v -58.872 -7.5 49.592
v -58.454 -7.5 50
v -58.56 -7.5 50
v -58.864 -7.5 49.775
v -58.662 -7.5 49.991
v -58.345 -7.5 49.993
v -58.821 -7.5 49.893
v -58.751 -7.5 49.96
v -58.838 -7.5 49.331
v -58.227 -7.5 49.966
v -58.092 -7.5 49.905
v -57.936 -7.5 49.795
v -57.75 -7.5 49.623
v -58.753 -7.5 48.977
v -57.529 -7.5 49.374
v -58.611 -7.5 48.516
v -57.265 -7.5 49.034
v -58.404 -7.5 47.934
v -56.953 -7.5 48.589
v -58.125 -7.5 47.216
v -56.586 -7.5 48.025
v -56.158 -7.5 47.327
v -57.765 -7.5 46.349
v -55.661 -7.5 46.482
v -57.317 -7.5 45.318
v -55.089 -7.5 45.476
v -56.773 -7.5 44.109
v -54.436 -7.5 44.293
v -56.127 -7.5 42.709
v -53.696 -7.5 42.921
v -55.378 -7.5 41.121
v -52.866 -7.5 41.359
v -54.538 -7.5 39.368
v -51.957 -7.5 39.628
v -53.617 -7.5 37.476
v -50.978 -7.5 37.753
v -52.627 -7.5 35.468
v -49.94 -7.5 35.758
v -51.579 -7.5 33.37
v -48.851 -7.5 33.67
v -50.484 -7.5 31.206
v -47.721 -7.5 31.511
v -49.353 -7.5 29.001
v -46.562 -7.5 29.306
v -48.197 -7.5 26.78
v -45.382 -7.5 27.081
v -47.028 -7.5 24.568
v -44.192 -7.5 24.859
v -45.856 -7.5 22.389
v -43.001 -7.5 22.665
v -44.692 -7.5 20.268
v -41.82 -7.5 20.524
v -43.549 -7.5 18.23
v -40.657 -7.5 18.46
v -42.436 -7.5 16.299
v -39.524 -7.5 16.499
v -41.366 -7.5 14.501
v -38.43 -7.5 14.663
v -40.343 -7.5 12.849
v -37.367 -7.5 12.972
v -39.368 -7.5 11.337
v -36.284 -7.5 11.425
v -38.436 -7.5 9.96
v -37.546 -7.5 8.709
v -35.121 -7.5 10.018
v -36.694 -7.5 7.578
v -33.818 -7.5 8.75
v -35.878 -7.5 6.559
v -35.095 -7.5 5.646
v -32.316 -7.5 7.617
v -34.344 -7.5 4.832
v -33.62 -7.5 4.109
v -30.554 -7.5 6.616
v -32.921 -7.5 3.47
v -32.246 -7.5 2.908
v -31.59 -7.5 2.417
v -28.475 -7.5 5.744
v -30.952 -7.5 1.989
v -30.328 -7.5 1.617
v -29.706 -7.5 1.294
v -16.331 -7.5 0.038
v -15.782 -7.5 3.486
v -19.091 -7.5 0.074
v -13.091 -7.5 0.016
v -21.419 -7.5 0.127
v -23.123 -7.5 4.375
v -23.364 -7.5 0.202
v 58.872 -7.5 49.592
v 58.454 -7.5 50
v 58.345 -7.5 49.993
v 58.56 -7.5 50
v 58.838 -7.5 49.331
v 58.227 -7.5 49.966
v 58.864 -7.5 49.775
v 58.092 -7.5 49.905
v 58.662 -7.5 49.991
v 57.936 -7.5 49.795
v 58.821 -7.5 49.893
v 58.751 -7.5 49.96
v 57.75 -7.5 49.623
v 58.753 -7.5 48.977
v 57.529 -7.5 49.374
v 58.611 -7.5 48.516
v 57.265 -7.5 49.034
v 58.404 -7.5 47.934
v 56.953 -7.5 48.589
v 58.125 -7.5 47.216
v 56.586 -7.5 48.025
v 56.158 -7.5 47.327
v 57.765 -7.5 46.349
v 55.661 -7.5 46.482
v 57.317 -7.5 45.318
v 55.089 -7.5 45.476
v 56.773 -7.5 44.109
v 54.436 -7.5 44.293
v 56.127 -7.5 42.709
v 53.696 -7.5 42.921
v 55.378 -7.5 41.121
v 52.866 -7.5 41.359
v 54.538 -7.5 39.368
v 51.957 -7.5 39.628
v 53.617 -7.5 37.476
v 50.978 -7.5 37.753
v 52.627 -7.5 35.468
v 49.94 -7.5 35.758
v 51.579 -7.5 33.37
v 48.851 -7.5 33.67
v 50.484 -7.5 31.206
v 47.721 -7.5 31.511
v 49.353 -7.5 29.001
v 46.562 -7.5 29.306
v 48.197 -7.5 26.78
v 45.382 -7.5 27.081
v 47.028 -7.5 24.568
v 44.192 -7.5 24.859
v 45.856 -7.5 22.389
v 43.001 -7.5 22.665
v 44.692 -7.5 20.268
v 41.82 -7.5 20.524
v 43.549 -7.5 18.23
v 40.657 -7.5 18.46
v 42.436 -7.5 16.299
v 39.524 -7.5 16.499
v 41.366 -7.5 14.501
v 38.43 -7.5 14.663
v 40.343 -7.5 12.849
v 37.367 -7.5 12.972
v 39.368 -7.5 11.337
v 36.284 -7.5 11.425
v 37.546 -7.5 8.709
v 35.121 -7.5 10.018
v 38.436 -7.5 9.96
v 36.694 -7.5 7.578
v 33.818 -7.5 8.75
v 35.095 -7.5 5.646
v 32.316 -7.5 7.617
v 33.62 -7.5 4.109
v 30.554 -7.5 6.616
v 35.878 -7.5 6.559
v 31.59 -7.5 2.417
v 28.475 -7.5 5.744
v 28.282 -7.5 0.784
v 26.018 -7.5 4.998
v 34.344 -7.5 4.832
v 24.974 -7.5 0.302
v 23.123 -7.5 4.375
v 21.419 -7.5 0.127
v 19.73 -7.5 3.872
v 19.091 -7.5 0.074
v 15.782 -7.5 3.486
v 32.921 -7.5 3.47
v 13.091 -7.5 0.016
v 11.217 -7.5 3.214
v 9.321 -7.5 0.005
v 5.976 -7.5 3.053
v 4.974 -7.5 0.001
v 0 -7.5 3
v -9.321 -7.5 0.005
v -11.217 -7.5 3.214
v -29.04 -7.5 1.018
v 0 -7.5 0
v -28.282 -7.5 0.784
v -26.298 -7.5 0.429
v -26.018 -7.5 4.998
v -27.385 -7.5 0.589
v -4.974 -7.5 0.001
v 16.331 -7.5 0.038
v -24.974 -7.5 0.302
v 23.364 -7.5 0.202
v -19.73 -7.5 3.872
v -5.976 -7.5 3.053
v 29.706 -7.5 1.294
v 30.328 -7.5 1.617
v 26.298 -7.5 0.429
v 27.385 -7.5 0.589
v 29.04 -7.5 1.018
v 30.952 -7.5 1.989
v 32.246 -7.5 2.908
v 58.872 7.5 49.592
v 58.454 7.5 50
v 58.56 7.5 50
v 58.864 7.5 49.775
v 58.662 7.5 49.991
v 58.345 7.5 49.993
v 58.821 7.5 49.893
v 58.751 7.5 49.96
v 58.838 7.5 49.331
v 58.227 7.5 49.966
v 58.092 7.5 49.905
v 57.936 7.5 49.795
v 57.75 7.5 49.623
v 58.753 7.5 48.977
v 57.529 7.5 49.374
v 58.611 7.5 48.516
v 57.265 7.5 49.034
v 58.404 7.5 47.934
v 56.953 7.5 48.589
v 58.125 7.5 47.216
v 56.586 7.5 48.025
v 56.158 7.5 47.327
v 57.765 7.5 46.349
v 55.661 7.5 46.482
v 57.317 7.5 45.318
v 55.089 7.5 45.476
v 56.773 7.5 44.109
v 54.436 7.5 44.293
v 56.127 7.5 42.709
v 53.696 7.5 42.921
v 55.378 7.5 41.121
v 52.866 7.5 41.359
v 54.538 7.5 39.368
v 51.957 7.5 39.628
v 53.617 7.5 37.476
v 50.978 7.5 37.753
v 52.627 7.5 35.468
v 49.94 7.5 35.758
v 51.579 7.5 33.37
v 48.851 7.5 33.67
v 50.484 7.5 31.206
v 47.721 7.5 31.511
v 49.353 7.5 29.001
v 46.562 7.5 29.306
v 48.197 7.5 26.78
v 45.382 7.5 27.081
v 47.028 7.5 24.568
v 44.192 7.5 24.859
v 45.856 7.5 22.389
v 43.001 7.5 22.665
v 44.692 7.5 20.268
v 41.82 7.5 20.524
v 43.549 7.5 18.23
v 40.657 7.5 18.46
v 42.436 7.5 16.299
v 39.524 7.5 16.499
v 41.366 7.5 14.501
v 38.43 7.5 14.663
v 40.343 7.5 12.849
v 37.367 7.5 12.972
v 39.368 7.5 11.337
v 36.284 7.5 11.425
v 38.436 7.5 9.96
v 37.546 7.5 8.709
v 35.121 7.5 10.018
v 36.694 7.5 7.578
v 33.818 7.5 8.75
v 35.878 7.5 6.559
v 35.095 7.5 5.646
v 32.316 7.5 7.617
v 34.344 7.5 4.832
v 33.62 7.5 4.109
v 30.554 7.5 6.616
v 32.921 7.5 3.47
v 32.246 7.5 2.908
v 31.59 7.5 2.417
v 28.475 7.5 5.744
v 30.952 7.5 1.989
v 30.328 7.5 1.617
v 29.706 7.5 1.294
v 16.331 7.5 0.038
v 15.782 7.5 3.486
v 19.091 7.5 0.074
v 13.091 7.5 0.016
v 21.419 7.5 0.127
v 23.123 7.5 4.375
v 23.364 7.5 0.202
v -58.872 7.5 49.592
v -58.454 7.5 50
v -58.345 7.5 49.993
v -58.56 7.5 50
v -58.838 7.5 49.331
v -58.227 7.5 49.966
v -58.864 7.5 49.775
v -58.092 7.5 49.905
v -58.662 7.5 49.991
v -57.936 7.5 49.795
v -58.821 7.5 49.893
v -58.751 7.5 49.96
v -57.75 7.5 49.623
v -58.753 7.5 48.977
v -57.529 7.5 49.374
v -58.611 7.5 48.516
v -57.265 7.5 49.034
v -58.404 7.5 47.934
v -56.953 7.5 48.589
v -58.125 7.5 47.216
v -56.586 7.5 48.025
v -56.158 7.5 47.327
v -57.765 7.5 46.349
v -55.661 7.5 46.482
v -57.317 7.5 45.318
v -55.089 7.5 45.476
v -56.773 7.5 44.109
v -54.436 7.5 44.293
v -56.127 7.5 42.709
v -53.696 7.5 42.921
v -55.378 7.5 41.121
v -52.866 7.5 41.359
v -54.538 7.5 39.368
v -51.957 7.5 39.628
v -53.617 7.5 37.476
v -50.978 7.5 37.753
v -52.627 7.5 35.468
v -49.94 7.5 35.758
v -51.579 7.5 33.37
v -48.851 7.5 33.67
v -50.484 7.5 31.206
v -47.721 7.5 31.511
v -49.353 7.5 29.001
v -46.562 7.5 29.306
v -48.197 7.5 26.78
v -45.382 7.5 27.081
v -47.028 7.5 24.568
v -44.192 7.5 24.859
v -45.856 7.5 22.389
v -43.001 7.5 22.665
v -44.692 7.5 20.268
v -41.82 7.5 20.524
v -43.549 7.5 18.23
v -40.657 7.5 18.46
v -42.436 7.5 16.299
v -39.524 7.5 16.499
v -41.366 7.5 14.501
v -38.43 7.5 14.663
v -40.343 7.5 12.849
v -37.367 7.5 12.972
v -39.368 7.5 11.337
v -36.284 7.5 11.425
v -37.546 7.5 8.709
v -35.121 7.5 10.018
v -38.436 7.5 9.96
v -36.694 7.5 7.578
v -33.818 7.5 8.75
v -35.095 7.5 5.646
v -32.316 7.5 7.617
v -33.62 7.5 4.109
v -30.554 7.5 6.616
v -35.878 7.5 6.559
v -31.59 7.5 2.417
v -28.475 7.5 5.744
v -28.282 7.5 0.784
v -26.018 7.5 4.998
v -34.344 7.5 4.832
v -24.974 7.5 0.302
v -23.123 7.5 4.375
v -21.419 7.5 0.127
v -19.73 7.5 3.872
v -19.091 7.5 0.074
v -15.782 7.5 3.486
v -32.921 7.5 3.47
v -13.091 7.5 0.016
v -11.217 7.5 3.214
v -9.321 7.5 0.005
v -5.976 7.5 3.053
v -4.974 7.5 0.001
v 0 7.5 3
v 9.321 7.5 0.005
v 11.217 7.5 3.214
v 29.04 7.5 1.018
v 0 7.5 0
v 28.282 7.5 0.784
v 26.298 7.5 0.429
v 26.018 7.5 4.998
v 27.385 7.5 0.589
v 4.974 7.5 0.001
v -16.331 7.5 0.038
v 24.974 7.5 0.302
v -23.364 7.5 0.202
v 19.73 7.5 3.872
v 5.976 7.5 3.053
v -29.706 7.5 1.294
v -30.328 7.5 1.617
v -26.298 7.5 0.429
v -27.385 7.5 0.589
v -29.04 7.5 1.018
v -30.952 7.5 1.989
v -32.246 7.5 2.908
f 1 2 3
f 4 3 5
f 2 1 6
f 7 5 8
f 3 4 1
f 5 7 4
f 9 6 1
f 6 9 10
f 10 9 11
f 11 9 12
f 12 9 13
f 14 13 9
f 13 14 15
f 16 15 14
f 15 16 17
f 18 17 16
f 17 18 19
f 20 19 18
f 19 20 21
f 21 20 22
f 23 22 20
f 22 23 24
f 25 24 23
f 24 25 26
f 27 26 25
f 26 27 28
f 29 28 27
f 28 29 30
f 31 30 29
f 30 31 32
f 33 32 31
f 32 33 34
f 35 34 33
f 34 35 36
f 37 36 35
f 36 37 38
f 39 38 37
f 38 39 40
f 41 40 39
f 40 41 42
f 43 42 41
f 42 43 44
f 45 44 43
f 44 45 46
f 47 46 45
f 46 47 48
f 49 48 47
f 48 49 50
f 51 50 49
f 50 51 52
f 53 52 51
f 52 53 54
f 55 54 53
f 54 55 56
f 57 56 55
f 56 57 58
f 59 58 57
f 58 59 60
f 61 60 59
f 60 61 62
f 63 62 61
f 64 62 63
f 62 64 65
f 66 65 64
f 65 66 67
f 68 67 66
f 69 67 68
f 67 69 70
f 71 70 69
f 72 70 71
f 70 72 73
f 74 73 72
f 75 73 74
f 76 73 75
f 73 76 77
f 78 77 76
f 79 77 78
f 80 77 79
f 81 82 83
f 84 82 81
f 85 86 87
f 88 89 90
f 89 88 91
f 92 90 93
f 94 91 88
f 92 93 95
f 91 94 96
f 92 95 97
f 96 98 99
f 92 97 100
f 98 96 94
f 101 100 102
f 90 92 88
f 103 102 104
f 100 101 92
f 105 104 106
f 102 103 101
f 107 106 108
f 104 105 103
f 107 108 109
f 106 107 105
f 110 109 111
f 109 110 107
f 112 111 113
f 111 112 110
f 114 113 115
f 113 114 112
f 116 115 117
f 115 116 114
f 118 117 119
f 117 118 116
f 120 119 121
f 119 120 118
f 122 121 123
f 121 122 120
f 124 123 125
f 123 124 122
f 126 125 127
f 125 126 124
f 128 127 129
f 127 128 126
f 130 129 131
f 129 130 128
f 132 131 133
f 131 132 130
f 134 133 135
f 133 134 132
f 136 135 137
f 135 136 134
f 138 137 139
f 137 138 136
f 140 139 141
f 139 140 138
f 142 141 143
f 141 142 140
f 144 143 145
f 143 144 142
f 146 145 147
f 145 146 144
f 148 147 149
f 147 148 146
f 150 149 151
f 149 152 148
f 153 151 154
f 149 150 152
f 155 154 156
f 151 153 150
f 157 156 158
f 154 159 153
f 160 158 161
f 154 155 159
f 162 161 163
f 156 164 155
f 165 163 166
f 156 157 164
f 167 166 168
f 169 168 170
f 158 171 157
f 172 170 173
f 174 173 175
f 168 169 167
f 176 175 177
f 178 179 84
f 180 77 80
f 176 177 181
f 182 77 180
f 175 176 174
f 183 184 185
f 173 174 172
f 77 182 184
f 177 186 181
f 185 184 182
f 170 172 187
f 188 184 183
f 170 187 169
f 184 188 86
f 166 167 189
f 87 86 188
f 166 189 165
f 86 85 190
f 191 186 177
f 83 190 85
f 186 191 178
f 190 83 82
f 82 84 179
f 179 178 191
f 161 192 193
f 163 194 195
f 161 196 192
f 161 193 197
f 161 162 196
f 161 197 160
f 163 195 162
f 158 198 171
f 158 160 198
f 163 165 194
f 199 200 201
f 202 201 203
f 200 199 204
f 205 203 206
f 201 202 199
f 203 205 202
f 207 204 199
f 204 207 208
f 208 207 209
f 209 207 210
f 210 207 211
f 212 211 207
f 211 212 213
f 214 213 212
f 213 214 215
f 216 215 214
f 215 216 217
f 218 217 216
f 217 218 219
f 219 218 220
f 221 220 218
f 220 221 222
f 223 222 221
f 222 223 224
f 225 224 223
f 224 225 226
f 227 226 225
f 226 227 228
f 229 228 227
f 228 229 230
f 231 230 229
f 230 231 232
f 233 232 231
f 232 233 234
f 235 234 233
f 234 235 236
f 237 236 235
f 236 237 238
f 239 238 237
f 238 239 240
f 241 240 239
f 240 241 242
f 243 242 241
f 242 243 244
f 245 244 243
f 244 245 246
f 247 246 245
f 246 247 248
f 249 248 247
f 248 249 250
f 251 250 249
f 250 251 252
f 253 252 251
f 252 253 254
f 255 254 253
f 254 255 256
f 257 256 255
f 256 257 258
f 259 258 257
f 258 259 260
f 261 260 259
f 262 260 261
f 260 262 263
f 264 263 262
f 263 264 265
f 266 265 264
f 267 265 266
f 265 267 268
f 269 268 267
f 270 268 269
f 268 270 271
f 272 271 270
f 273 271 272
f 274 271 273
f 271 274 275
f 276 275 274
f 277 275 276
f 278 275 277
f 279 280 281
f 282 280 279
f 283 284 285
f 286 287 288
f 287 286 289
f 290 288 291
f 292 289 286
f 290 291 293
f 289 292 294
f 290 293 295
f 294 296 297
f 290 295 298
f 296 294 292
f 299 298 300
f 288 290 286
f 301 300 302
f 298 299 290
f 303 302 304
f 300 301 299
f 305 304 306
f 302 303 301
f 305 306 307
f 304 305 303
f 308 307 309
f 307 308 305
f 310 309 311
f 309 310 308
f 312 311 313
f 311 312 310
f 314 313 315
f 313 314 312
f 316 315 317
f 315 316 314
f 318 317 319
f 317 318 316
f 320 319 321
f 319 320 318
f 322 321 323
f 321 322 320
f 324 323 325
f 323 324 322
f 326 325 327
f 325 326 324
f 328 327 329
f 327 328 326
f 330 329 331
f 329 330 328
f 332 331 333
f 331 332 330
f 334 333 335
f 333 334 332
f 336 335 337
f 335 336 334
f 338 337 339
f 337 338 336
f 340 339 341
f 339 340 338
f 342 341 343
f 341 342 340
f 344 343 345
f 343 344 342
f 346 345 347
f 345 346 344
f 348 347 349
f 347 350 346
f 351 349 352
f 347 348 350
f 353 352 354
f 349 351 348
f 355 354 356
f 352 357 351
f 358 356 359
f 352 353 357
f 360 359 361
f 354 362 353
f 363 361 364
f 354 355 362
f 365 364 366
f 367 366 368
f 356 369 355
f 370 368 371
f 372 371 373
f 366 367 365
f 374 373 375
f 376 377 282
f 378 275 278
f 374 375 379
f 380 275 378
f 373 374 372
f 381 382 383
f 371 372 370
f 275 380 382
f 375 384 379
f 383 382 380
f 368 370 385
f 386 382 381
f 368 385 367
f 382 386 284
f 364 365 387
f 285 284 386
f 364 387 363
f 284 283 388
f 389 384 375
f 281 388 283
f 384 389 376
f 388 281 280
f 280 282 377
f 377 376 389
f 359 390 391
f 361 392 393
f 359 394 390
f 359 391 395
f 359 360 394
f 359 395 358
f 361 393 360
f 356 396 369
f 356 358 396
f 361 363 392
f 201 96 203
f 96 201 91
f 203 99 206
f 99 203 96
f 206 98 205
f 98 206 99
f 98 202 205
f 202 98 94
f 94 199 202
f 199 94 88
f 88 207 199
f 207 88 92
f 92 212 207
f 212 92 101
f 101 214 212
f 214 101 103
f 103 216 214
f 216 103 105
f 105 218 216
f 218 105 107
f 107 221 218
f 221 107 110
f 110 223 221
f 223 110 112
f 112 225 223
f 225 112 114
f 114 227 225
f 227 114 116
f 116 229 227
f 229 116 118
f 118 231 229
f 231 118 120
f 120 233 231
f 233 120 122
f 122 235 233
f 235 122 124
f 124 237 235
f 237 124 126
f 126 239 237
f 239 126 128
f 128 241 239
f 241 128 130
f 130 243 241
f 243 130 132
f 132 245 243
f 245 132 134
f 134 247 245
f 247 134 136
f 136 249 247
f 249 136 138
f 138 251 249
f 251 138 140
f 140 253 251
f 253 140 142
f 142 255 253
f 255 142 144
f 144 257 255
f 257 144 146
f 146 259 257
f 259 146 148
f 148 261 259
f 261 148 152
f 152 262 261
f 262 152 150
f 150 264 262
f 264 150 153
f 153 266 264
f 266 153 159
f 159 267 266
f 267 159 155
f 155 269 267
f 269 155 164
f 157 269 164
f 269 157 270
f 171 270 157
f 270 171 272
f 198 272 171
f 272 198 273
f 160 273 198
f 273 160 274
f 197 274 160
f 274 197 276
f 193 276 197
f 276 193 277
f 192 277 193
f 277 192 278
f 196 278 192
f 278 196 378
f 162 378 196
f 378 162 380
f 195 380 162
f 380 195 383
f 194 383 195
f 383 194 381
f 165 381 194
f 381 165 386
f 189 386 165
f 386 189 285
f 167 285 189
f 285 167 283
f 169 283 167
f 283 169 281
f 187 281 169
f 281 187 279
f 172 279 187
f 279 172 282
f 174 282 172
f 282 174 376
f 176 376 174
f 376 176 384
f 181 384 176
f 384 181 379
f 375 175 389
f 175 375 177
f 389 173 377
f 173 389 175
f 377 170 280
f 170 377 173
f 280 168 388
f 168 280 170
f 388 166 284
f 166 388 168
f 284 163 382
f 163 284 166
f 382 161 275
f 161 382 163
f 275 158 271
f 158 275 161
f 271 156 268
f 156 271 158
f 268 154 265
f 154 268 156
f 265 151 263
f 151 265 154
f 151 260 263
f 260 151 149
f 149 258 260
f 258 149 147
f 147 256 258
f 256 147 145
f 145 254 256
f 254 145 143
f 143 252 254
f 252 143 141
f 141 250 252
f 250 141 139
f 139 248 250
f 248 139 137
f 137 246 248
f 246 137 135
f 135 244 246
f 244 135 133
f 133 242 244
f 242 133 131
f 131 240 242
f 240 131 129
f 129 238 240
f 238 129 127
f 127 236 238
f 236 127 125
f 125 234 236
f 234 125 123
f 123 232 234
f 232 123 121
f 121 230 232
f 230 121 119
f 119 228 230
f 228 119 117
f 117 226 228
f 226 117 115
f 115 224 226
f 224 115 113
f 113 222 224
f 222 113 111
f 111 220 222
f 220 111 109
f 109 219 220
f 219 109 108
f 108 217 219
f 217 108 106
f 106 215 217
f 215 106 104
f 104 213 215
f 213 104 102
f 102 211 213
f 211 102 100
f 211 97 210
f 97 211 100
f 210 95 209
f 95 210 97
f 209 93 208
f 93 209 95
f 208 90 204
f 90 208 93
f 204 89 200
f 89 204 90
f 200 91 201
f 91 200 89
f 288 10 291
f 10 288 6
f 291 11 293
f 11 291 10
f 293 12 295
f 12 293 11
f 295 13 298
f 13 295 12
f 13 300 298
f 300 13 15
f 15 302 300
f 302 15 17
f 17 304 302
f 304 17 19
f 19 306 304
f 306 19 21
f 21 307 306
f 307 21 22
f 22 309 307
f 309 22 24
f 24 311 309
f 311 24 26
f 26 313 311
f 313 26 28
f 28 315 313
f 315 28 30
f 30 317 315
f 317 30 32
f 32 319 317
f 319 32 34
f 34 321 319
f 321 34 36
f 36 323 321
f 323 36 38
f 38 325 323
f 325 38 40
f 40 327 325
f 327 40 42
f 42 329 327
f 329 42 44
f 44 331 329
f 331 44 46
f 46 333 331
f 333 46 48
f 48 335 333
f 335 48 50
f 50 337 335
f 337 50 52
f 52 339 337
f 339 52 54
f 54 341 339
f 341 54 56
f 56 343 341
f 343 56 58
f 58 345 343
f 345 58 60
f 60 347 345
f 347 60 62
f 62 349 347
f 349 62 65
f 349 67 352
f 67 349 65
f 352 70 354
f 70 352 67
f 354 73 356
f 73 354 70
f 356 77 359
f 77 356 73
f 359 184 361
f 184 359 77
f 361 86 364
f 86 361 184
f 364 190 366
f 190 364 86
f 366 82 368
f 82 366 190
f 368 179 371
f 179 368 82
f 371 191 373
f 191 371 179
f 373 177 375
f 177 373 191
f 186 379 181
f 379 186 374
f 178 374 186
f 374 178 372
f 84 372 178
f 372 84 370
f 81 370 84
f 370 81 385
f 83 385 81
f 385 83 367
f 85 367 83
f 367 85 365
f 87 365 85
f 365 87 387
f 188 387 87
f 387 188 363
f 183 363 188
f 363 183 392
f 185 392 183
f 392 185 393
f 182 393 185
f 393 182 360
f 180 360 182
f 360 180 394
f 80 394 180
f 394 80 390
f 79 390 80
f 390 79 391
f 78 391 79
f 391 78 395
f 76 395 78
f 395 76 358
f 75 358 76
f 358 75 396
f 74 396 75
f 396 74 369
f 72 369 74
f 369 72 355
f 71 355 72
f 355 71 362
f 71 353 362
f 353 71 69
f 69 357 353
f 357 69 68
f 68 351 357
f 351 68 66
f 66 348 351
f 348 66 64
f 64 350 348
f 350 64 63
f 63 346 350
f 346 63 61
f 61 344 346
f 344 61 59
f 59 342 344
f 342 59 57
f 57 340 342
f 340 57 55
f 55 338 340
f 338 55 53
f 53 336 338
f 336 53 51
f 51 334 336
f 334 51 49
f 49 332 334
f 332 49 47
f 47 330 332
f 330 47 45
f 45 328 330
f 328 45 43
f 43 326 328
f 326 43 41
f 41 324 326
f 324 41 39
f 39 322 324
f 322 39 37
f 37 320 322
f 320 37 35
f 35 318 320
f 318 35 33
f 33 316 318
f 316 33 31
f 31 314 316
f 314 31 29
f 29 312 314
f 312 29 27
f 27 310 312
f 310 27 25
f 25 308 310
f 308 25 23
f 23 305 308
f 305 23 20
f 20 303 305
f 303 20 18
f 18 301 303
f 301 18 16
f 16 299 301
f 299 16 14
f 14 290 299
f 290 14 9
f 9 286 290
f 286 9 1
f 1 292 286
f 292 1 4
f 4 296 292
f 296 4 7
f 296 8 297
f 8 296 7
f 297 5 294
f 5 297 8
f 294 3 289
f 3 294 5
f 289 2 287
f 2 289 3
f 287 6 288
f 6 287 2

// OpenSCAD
module LandingGear(){
 rotate([-90,0,0])
 union() {
  linear_extrude(height = 15, center = true, convexity = 10, twist = 0)polygon( points=[[0.0, 0.0], [4.973665763508637, -0.0005891654703000486], [9.321006548840442, -0.004713323762400389], [13.090628507295175, -0.015907467698101307], [16.331137790172583, -0.03770659009920311], [19.091140548772422, -0.07364568378750609], [21.419242934394454, -0.12725974158481046], [23.364051098338418, -0.20208375631291672], [24.974171191904073, -0.3016527207936249], [26.298209366391184, -0.42950162784873536], [27.3847717730995, -0.5891654703000487], [28.282464563328755, -0.7841792409693646], [29.039893888378735, -1.0180779326784837], [29.705665899549178, -1.294396538249207], [30.328386748139838, -1.6166700505033338], [30.9518393299385, -1.9888044819174298], [31.590040801855924, -2.4169955171893753], [32.245664738395064, -2.9083114242791837], [32.9213623841723, -3.469822188830454], [33.61978498380396, -4.108597796486789], [34.3435837819064, -4.831708232891788], [35.095410023095965, -5.646223483689049], [35.87791495198902, -6.559213534522177], [36.69374981320192, -7.577748371034774], [37.54556585135097, -8.708897978870432], [38.436014311052574, -9.959732343672762], [39.36774643692305, -11.337321451085359], [40.34341347357877, -12.848735286751824], [41.365666665636056, -14.501043836315755], [42.43631988696268, -16.29938469138551], [43.54896068119209, -18.22991160456726], [44.692507412663524, -20.26800329932664], [45.8558248539883, -22.38891482591106], [47.027777777777786, -24.56790123456791], [48.19723095664326, -26.780217575544594], [49.3530491631961, -29.001118899088507], [50.48409717004758, -31.205860255447043], [51.57923974980908, -33.3696966948676], [52.62734167509191, -35.46788326759759], [53.61726771850741, -37.475675023884406], [54.53788265266685, -39.368327013975424], [55.37805125018165, -41.12109428811807], [56.12663828366307, -42.70923189655972], [56.773091163995154, -44.10920413879295], [57.316643804298124, -45.3177869227252], [57.764650638617574, -46.34861006761834], [58.1247119015204, -47.215813544759584], [58.404427827573414, -47.93353732543611], [58.611398651343556, -48.515921380935154], [58.753224607397655, -48.9771056825439], [58.83750593030258, -49.33123020154956], [58.87184285462522, -49.59243490923932], [58.86383561493244, -49.774859776900385], [58.8210844457911, -49.89264477581996], [58.75118958176808, -49.95992987728524], [58.661751257430275, -49.990855052583456], [58.56036970734449, -49.999560273001755], [58.454459656250286, -49.999814490172625], [58.345307133849126, -49.99312926565248], [58.22681213041891, -49.96624408215063], [58.09243490923931, -49.905018968379835], [57.93563573359002, -49.79531395305296], [57.749874866750694, -49.62298906488276], [57.528612572001, -49.373904332582015], [57.265309112620606, -49.03391978486356], [56.95342475188921, -48.588895450440205], [56.58641975308642, -48.02469135802469], [56.157754379491955, -47.32716753632987], [55.66088889438547, -46.482184014068515], [55.089283561046635, -45.47560081995342], [54.43639864275512, -44.29327798269741], [53.69575830062005, -42.921226000095494], [52.86645379413974, -41.35856498873026], [51.957384699630374, -39.6275120693037], [50.978448996993, -37.752635441927325], [49.93954466612868, -35.75850330671264], [48.850569686938414, -33.669683863771176], [47.721422039323265, -31.51074531321444], [46.561999703184256, -29.306255855153896], [45.382200658422455, -27.08078368970113], [44.19192288493889, -24.858897016967592], [43.00106436263459, -22.66516403706484], [41.819523071410615, -20.524152950104348], [40.65719699116801, -18.460431956197677], [39.52398410180779, -16.498569255456296], [38.42974863074851, -14.663119650059736], [37.367208544307815, -12.971831792742911], [36.28408974965447, -11.424594892914431], [35.12082761774119, -10.018404206675802], [33.8178575195206, -8.750254990128454], [32.31561482594539, -7.617142499373894], [30.55453490796822, -6.616061990513571], [28.475053136541728, -5.74400871964895], [26.017604882618635, -4.997977942881519], [23.12262551715154, -4.37496491631273], [19.730550411093184, -3.871964896044068], [15.781814935396188, -3.4859731381769934], [11.21685446101317, -3.213984898812975], [5.9761043588969045, -3.052995434053489], [0.0, -3.0], ] );
  linear_extrude(height = 15, center = true, convexity = 10, twist = 0)mirror([1,0,0])polygon( points=[[0.0, 0.0], [4.973665763508637, -0.0005891654703000486], [9.321006548840442, -0.004713323762400389], [13.090628507295175, -0.015907467698101307], [16.331137790172583, -0.03770659009920311], [19.091140548772422, -0.07364568378750609], [21.419242934394454, -0.12725974158481046], [23.364051098338418, -0.20208375631291672], [24.974171191904073, -0.3016527207936249], [26.298209366391184, -0.42950162784873536], [27.3847717730995, -0.5891654703000487], [28.282464563328755, -0.7841792409693646], [29.039893888378735, -1.0180779326784837], [29.705665899549178, -1.294396538249207], [30.328386748139838, -1.6166700505033338], [30.9518393299385, -1.9888044819174298], [31.590040801855924, -2.4169955171893753], [32.245664738395064, -2.9083114242791837], [32.9213623841723, -3.469822188830454], [33.61978498380396, -4.108597796486789], [34.3435837819064, -4.831708232891788], [35.095410023095965, -5.646223483689049], [35.87791495198902, -6.559213534522177], [36.69374981320192, -7.577748371034774], [37.54556585135097, -8.708897978870432], [38.436014311052574, -9.959732343672762], [39.36774643692305, -11.337321451085359], [40.34341347357877, -12.848735286751824], [41.365666665636056, -14.501043836315755], [42.43631988696268, -16.29938469138551], [43.54896068119209, -18.22991160456726], [44.692507412663524, -20.26800329932664], [45.8558248539883, -22.38891482591106], [47.027777777777786, -24.56790123456791], [48.19723095664326, -26.780217575544594], [49.3530491631961, -29.001118899088507], [50.48409717004758, -31.205860255447043], [51.57923974980908, -33.3696966948676], [52.62734167509191, -35.46788326759759], [53.61726771850741, -37.475675023884406], [54.53788265266685, -39.368327013975424], [55.37805125018165, -41.12109428811807], [56.12663828366307, -42.70923189655972], [56.773091163995154, -44.10920413879295], [57.316643804298124, -45.3177869227252], [57.764650638617574, -46.34861006761834], [58.1247119015204, -47.215813544759584], [58.404427827573414, -47.93353732543611], [58.611398651343556, -48.515921380935154], [58.753224607397655, -48.9771056825439], [58.83750593030258, -49.33123020154956], [58.87184285462522, -49.59243490923932], [58.86383561493244, -49.774859776900385], [58.8210844457911, -49.89264477581996], [58.75118958176808, -49.95992987728524], [58.661751257430275, -49.990855052583456], [58.56036970734449, -49.999560273001755], [58.454459656250286, -49.999814490172625], [58.345307133849126, -49.99312926565248], [58.22681213041891, -49.96624408215063], [58.09243490923931, -49.905018968379835], [57.93563573359002, -49.79531395305296], [57.749874866750694, -49.62298906488276], [57.528612572001, -49.373904332582015], [57.265309112620606, -49.03391978486356], [56.95342475188921, -48.588895450440205], [56.58641975308642, -48.02469135802469], [56.157754379491955, -47.32716753632987], [55.66088889438547, -46.482184014068515], [55.089283561046635, -45.47560081995342], [54.43639864275512, -44.29327798269741], [53.69575830062005, -42.921226000095494], [52.86645379413974, -41.35856498873026], [51.957384699630374, -39.6275120693037], [50.978448996993, -37.752635441927325], [49.93954466612868, -35.75850330671264], [48.850569686938414, -33.669683863771176], [47.721422039323265, -31.51074531321444], [46.561999703184256, -29.306255855153896], [45.382200658422455, -27.08078368970113], [44.19192288493889, -24.858897016967592], [43.00106436263459, -22.66516403706484], [41.819523071410615, -20.524152950104348], [40.65719699116801, -18.460431956197677], [39.52398410180779, -16.498569255456296], [38.42974863074851, -14.663119650059736], [37.367208544307815, -12.971831792742911], [36.28408974965447, -11.424594892914431], [35.12082761774119, -10.018404206675802], [33.8178575195206, -8.750254990128454], [32.31561482594539, -7.617142499373894], [30.55453490796822, -6.616061990513571], [28.475053136541728, -5.74400871964895], [26.017604882618635, -4.997977942881519], [23.12262551715154, -4.37496491631273], [19.730550411093184, -3.871964896044068], [15.781814935396188, -3.4859731381769934], [11.21685446101317, -3.213984898812975], [5.9761043588969045, -3.052995434053489], [0.0, -3.0], ] );
};};

LandingGear();
module LandingGear(){
 rotate([-90,0,0])
 union() {
  linear_extrude(height = 15, center = true, convexity = 10, twist = 0)polygon( points=[[0.0, 0.0], [4.973665763508637, -0.0005891654703000486], [9.321006548840442, -0.004713323762400389], [13.090628507295175, -0.015907467698101307], [16.331137790172583, -0.03770659009920311], [19.091140548772422, -0.07364568378750609], [21.419242934394454, -0.12725974158481046], [23.364051098338418, -0.20208375631291672], [24.974171191904073, -0.3016527207936249], [26.298209366391184, -0.42950162784873536], [27.3847717730995, -0.5891654703000487], [28.282464563328755, -0.7841792409693646], [29.039893888378735, -1.0180779326784837], [29.705665899549178, -1.294396538249207], [30.328386748139838, -1.6166700505033338], [30.9518393299385, -1.9888044819174298], [31.590040801855924, -2.4169955171893753], [32.245664738395064, -2.9083114242791837], [32.9213623841723, -3.469822188830454], [33.61978498380396, -4.108597796486789], [34.3435837819064, -4.831708232891788], [35.095410023095965, -5.646223483689049], [35.87791495198902, -6.559213534522177], [36.69374981320192, -7.577748371034774], [37.54556585135097, -8.708897978870432], [38.436014311052574, -9.959732343672762], [39.36774643692305, -11.337321451085359], [40.34341347357877, -12.848735286751824], [41.365666665636056, -14.501043836315755], [42.43631988696268, -16.29938469138551], [43.54896068119209, -18.22991160456726], [44.692507412663524, -20.26800329932664], [45.8558248539883, -22.38891482591106], [47.027777777777786, -24.56790123456791], [48.19723095664326, -26.780217575544594], [49.3530491631961, -29.001118899088507], [50.48409717004758, -31.205860255447043], [51.57923974980908, -33.3696966948676], [52.62734167509191, -35.46788326759759], [53.61726771850741, -37.475675023884406], [54.53788265266685, -39.368327013975424], [55.37805125018165, -41.12109428811807], [56.12663828366307, -42.70923189655972], [56.773091163995154, -44.10920413879295], [57.316643804298124, -45.3177869227252], [57.764650638617574, -46.34861006761834], [58.1247119015204, -47.215813544759584], [58.404427827573414, -47.93353732543611], [58.611398651343556, -48.515921380935154], [58.753224607397655, -48.9771056825439], [58.83750593030258, -49.33123020154956], [58.87184285462522, -49.59243490923932], [58.86383561493244, -49.774859776900385], [58.8210844457911, -49.89264477581996], [58.75118958176808, -49.95992987728524], [58.661751257430275, -49.990855052583456], [58.56036970734449, -49.999560273001755], [58.454459656250286, -49.999814490172625], [58.345307133849126, -49.99312926565248], [58.22681213041891, -49.96624408215063], [58.09243490923931, -49.905018968379835], [57.93563573359002, -49.79531395305296], [57.749874866750694, -49.62298906488276], [57.528612572001, -49.373904332582015], [57.265309112620606, -49.03391978486356], [56.95342475188921, -48.588895450440205], [56.58641975308642, -48.02469135802469], [56.157754379491955, -47.32716753632987], [55.66088889438547, -46.482184014068515], [55.089283561046635, -45.47560081995342], [54.43639864275512, -44.29327798269741], [53.69575830062005, -42.921226000095494], [52.86645379413974, -41.35856498873026], [51.957384699630374, -39.6275120693037], [50.978448996993, -37.752635441927325], [49.93954466612868, -35.75850330671264], [48.850569686938414, -33.669683863771176], [47.721422039323265, -31.51074531321444], [46.561999703184256, -29.306255855153896], [45.382200658422455, -27.08078368970113], [44.19192288493889, -24.858897016967592], [43.00106436263459, -22.66516403706484], [41.819523071410615, -20.524152950104348], [40.65719699116801, -18.460431956197677], [39.52398410180779, -16.498569255456296], [38.42974863074851, -14.663119650059736], [37.367208544307815, -12.971831792742911], [36.28408974965447, -11.424594892914431], [35.12082761774119, -10.018404206675802], [33.8178575195206, -8.750254990128454], [32.31561482594539, -7.617142499373894], [30.55453490796822, -6.616061990513571], [28.475053136541728, -5.74400871964895], [26.017604882618635, -4.997977942881519], [23.12262551715154, -4.37496491631273], [19.730550411093184, -3.871964896044068], [15.781814935396188, -3.4859731381769934], [11.21685446101317, -3.213984898812975], [5.9761043588969045, -3.052995434053489], [0.0, -3.0], ] );
  linear_extrude(height = 15, center = true, convexity = 10, twist = 0)mirror([1,0,0])polygon( points=[[0.0, 0.0], [4.973665763508637, -0.0005891654703000486], [9.321006548840442, -0.004713323762400389], [13.090628507295175, -0.015907467698101307], [16.331137790172583, -0.03770659009920311], [19.091140548772422, -0.07364568378750609], [21.419242934394454, -0.12725974158481046], [23.364051098338418, -0.20208375631291672], [24.974171191904073, -0.3016527207936249], [26.298209366391184, -0.42950162784873536], [27.3847717730995, -0.5891654703000487], [28.282464563328755, -0.7841792409693646], [29.039893888378735, -1.0180779326784837], [29.705665899549178, -1.294396538249207], [30.328386748139838, -1.6166700505033338], [30.9518393299385, -1.9888044819174298], [31.590040801855924, -2.4169955171893753], [32.245664738395064, -2.9083114242791837], [32.9213623841723, -3.469822188830454], [33.61978498380396, -4.108597796486789], [34.3435837819064, -4.831708232891788], [35.095410023095965, -5.646223483689049], [35.87791495198902, -6.559213534522177], [36.69374981320192, -7.577748371034774], [37.54556585135097, -8.708897978870432], [38.436014311052574, -9.959732343672762], [39.36774643692305, -11.337321451085359], [40.34341347357877, -12.848735286751824], [41.365666665636056, -14.501043836315755], [42.43631988696268, -16.29938469138551], [43.54896068119209, -18.22991160456726], [44.692507412663524, -20.26800329932664], [45.8558248539883, -22.38891482591106], [47.027777777777786, -24.56790123456791], [48.19723095664326, -26.780217575544594], [49.3530491631961, -29.001118899088507], [50.48409717004758, -31.205860255447043], [51.57923974980908, -33.3696966948676], [52.62734167509191, -35.46788326759759], [53.61726771850741, -37.475675023884406], [54.53788265266685, -39.368327013975424], [55.37805125018165, -41.12109428811807], [56.12663828366307, -42.70923189655972], [56.773091163995154, -44.10920413879295], [57.316643804298124, -45.3177869227252], [57.764650638617574, -46.34861006761834], [58.1247119015204, -47.215813544759584], [58.404427827573414, -47.93353732543611], [58.611398651343556, -48.515921380935154], [58.753224607397655, -48.9771056825439], [58.83750593030258, -49.33123020154956], [58.87184285462522, -49.59243490923932], [58.86383561493244, -49.774859776900385], [58.8210844457911, -49.89264477581996], [58.75118958176808, -49.95992987728524], [58.661751257430275, -49.990855052583456], [58.56036970734449, -49.999560273001755], [58.454459656250286, -49.999814490172625], [58.345307133849126, -49.99312926565248], [58.22681213041891, -49.96624408215063], [58.09243490923931, -49.905018968379835], [57.93563573359002, -49.79531395305296], [57.749874866750694, -49.62298906488276], [57.528612572001, -49.373904332582015], [57.265309112620606, -49.03391978486356], [56.95342475188921, -48.588895450440205], [56.58641975308642, -48.02469135802469], [56.157754379491955, -47.32716753632987], [55.66088889438547, -46.482184014068515], [55.089283561046635, -45.47560081995342], [54.43639864275512, -44.29327798269741], [53.69575830062005, -42.921226000095494], [52.86645379413974, -41.35856498873026], [51.957384699630374, -39.6275120693037], [50.978448996993, -37.752635441927325], [49.93954466612868, -35.75850330671264], [48.850569686938414, -33.669683863771176], [47.721422039323265, -31.51074531321444], [46.561999703184256, -29.306255855153896], [45.382200658422455, -27.08078368970113], [44.19192288493889, -24.858897016967592], [43.00106436263459, -22.66516403706484], [41.819523071410615, -20.524152950104348], [40.65719699116801, -18.460431956197677], [39.52398410180779, -16.498569255456296], [38.42974863074851, -14.663119650059736], [37.367208544307815, -12.971831792742911], [36.28408974965447, -11.424594892914431], [35.12082761774119, -10.018404206675802], [33.8178575195206, -8.750254990128454], [32.31561482594539, -7.617142499373894], [30.55453490796822, -6.616061990513571], [28.475053136541728, -5.74400871964895], [26.017604882618635, -4.997977942881519], [23.12262551715154, -4.37496491631273], [19.730550411093184, -3.871964896044068], [15.781814935396188, -3.4859731381769934], [11.21685446101317, -3.213984898812975], [5.9761043588969045, -3.052995434053489], [0.0, -3.0], ] );
};};

LandingGear();
